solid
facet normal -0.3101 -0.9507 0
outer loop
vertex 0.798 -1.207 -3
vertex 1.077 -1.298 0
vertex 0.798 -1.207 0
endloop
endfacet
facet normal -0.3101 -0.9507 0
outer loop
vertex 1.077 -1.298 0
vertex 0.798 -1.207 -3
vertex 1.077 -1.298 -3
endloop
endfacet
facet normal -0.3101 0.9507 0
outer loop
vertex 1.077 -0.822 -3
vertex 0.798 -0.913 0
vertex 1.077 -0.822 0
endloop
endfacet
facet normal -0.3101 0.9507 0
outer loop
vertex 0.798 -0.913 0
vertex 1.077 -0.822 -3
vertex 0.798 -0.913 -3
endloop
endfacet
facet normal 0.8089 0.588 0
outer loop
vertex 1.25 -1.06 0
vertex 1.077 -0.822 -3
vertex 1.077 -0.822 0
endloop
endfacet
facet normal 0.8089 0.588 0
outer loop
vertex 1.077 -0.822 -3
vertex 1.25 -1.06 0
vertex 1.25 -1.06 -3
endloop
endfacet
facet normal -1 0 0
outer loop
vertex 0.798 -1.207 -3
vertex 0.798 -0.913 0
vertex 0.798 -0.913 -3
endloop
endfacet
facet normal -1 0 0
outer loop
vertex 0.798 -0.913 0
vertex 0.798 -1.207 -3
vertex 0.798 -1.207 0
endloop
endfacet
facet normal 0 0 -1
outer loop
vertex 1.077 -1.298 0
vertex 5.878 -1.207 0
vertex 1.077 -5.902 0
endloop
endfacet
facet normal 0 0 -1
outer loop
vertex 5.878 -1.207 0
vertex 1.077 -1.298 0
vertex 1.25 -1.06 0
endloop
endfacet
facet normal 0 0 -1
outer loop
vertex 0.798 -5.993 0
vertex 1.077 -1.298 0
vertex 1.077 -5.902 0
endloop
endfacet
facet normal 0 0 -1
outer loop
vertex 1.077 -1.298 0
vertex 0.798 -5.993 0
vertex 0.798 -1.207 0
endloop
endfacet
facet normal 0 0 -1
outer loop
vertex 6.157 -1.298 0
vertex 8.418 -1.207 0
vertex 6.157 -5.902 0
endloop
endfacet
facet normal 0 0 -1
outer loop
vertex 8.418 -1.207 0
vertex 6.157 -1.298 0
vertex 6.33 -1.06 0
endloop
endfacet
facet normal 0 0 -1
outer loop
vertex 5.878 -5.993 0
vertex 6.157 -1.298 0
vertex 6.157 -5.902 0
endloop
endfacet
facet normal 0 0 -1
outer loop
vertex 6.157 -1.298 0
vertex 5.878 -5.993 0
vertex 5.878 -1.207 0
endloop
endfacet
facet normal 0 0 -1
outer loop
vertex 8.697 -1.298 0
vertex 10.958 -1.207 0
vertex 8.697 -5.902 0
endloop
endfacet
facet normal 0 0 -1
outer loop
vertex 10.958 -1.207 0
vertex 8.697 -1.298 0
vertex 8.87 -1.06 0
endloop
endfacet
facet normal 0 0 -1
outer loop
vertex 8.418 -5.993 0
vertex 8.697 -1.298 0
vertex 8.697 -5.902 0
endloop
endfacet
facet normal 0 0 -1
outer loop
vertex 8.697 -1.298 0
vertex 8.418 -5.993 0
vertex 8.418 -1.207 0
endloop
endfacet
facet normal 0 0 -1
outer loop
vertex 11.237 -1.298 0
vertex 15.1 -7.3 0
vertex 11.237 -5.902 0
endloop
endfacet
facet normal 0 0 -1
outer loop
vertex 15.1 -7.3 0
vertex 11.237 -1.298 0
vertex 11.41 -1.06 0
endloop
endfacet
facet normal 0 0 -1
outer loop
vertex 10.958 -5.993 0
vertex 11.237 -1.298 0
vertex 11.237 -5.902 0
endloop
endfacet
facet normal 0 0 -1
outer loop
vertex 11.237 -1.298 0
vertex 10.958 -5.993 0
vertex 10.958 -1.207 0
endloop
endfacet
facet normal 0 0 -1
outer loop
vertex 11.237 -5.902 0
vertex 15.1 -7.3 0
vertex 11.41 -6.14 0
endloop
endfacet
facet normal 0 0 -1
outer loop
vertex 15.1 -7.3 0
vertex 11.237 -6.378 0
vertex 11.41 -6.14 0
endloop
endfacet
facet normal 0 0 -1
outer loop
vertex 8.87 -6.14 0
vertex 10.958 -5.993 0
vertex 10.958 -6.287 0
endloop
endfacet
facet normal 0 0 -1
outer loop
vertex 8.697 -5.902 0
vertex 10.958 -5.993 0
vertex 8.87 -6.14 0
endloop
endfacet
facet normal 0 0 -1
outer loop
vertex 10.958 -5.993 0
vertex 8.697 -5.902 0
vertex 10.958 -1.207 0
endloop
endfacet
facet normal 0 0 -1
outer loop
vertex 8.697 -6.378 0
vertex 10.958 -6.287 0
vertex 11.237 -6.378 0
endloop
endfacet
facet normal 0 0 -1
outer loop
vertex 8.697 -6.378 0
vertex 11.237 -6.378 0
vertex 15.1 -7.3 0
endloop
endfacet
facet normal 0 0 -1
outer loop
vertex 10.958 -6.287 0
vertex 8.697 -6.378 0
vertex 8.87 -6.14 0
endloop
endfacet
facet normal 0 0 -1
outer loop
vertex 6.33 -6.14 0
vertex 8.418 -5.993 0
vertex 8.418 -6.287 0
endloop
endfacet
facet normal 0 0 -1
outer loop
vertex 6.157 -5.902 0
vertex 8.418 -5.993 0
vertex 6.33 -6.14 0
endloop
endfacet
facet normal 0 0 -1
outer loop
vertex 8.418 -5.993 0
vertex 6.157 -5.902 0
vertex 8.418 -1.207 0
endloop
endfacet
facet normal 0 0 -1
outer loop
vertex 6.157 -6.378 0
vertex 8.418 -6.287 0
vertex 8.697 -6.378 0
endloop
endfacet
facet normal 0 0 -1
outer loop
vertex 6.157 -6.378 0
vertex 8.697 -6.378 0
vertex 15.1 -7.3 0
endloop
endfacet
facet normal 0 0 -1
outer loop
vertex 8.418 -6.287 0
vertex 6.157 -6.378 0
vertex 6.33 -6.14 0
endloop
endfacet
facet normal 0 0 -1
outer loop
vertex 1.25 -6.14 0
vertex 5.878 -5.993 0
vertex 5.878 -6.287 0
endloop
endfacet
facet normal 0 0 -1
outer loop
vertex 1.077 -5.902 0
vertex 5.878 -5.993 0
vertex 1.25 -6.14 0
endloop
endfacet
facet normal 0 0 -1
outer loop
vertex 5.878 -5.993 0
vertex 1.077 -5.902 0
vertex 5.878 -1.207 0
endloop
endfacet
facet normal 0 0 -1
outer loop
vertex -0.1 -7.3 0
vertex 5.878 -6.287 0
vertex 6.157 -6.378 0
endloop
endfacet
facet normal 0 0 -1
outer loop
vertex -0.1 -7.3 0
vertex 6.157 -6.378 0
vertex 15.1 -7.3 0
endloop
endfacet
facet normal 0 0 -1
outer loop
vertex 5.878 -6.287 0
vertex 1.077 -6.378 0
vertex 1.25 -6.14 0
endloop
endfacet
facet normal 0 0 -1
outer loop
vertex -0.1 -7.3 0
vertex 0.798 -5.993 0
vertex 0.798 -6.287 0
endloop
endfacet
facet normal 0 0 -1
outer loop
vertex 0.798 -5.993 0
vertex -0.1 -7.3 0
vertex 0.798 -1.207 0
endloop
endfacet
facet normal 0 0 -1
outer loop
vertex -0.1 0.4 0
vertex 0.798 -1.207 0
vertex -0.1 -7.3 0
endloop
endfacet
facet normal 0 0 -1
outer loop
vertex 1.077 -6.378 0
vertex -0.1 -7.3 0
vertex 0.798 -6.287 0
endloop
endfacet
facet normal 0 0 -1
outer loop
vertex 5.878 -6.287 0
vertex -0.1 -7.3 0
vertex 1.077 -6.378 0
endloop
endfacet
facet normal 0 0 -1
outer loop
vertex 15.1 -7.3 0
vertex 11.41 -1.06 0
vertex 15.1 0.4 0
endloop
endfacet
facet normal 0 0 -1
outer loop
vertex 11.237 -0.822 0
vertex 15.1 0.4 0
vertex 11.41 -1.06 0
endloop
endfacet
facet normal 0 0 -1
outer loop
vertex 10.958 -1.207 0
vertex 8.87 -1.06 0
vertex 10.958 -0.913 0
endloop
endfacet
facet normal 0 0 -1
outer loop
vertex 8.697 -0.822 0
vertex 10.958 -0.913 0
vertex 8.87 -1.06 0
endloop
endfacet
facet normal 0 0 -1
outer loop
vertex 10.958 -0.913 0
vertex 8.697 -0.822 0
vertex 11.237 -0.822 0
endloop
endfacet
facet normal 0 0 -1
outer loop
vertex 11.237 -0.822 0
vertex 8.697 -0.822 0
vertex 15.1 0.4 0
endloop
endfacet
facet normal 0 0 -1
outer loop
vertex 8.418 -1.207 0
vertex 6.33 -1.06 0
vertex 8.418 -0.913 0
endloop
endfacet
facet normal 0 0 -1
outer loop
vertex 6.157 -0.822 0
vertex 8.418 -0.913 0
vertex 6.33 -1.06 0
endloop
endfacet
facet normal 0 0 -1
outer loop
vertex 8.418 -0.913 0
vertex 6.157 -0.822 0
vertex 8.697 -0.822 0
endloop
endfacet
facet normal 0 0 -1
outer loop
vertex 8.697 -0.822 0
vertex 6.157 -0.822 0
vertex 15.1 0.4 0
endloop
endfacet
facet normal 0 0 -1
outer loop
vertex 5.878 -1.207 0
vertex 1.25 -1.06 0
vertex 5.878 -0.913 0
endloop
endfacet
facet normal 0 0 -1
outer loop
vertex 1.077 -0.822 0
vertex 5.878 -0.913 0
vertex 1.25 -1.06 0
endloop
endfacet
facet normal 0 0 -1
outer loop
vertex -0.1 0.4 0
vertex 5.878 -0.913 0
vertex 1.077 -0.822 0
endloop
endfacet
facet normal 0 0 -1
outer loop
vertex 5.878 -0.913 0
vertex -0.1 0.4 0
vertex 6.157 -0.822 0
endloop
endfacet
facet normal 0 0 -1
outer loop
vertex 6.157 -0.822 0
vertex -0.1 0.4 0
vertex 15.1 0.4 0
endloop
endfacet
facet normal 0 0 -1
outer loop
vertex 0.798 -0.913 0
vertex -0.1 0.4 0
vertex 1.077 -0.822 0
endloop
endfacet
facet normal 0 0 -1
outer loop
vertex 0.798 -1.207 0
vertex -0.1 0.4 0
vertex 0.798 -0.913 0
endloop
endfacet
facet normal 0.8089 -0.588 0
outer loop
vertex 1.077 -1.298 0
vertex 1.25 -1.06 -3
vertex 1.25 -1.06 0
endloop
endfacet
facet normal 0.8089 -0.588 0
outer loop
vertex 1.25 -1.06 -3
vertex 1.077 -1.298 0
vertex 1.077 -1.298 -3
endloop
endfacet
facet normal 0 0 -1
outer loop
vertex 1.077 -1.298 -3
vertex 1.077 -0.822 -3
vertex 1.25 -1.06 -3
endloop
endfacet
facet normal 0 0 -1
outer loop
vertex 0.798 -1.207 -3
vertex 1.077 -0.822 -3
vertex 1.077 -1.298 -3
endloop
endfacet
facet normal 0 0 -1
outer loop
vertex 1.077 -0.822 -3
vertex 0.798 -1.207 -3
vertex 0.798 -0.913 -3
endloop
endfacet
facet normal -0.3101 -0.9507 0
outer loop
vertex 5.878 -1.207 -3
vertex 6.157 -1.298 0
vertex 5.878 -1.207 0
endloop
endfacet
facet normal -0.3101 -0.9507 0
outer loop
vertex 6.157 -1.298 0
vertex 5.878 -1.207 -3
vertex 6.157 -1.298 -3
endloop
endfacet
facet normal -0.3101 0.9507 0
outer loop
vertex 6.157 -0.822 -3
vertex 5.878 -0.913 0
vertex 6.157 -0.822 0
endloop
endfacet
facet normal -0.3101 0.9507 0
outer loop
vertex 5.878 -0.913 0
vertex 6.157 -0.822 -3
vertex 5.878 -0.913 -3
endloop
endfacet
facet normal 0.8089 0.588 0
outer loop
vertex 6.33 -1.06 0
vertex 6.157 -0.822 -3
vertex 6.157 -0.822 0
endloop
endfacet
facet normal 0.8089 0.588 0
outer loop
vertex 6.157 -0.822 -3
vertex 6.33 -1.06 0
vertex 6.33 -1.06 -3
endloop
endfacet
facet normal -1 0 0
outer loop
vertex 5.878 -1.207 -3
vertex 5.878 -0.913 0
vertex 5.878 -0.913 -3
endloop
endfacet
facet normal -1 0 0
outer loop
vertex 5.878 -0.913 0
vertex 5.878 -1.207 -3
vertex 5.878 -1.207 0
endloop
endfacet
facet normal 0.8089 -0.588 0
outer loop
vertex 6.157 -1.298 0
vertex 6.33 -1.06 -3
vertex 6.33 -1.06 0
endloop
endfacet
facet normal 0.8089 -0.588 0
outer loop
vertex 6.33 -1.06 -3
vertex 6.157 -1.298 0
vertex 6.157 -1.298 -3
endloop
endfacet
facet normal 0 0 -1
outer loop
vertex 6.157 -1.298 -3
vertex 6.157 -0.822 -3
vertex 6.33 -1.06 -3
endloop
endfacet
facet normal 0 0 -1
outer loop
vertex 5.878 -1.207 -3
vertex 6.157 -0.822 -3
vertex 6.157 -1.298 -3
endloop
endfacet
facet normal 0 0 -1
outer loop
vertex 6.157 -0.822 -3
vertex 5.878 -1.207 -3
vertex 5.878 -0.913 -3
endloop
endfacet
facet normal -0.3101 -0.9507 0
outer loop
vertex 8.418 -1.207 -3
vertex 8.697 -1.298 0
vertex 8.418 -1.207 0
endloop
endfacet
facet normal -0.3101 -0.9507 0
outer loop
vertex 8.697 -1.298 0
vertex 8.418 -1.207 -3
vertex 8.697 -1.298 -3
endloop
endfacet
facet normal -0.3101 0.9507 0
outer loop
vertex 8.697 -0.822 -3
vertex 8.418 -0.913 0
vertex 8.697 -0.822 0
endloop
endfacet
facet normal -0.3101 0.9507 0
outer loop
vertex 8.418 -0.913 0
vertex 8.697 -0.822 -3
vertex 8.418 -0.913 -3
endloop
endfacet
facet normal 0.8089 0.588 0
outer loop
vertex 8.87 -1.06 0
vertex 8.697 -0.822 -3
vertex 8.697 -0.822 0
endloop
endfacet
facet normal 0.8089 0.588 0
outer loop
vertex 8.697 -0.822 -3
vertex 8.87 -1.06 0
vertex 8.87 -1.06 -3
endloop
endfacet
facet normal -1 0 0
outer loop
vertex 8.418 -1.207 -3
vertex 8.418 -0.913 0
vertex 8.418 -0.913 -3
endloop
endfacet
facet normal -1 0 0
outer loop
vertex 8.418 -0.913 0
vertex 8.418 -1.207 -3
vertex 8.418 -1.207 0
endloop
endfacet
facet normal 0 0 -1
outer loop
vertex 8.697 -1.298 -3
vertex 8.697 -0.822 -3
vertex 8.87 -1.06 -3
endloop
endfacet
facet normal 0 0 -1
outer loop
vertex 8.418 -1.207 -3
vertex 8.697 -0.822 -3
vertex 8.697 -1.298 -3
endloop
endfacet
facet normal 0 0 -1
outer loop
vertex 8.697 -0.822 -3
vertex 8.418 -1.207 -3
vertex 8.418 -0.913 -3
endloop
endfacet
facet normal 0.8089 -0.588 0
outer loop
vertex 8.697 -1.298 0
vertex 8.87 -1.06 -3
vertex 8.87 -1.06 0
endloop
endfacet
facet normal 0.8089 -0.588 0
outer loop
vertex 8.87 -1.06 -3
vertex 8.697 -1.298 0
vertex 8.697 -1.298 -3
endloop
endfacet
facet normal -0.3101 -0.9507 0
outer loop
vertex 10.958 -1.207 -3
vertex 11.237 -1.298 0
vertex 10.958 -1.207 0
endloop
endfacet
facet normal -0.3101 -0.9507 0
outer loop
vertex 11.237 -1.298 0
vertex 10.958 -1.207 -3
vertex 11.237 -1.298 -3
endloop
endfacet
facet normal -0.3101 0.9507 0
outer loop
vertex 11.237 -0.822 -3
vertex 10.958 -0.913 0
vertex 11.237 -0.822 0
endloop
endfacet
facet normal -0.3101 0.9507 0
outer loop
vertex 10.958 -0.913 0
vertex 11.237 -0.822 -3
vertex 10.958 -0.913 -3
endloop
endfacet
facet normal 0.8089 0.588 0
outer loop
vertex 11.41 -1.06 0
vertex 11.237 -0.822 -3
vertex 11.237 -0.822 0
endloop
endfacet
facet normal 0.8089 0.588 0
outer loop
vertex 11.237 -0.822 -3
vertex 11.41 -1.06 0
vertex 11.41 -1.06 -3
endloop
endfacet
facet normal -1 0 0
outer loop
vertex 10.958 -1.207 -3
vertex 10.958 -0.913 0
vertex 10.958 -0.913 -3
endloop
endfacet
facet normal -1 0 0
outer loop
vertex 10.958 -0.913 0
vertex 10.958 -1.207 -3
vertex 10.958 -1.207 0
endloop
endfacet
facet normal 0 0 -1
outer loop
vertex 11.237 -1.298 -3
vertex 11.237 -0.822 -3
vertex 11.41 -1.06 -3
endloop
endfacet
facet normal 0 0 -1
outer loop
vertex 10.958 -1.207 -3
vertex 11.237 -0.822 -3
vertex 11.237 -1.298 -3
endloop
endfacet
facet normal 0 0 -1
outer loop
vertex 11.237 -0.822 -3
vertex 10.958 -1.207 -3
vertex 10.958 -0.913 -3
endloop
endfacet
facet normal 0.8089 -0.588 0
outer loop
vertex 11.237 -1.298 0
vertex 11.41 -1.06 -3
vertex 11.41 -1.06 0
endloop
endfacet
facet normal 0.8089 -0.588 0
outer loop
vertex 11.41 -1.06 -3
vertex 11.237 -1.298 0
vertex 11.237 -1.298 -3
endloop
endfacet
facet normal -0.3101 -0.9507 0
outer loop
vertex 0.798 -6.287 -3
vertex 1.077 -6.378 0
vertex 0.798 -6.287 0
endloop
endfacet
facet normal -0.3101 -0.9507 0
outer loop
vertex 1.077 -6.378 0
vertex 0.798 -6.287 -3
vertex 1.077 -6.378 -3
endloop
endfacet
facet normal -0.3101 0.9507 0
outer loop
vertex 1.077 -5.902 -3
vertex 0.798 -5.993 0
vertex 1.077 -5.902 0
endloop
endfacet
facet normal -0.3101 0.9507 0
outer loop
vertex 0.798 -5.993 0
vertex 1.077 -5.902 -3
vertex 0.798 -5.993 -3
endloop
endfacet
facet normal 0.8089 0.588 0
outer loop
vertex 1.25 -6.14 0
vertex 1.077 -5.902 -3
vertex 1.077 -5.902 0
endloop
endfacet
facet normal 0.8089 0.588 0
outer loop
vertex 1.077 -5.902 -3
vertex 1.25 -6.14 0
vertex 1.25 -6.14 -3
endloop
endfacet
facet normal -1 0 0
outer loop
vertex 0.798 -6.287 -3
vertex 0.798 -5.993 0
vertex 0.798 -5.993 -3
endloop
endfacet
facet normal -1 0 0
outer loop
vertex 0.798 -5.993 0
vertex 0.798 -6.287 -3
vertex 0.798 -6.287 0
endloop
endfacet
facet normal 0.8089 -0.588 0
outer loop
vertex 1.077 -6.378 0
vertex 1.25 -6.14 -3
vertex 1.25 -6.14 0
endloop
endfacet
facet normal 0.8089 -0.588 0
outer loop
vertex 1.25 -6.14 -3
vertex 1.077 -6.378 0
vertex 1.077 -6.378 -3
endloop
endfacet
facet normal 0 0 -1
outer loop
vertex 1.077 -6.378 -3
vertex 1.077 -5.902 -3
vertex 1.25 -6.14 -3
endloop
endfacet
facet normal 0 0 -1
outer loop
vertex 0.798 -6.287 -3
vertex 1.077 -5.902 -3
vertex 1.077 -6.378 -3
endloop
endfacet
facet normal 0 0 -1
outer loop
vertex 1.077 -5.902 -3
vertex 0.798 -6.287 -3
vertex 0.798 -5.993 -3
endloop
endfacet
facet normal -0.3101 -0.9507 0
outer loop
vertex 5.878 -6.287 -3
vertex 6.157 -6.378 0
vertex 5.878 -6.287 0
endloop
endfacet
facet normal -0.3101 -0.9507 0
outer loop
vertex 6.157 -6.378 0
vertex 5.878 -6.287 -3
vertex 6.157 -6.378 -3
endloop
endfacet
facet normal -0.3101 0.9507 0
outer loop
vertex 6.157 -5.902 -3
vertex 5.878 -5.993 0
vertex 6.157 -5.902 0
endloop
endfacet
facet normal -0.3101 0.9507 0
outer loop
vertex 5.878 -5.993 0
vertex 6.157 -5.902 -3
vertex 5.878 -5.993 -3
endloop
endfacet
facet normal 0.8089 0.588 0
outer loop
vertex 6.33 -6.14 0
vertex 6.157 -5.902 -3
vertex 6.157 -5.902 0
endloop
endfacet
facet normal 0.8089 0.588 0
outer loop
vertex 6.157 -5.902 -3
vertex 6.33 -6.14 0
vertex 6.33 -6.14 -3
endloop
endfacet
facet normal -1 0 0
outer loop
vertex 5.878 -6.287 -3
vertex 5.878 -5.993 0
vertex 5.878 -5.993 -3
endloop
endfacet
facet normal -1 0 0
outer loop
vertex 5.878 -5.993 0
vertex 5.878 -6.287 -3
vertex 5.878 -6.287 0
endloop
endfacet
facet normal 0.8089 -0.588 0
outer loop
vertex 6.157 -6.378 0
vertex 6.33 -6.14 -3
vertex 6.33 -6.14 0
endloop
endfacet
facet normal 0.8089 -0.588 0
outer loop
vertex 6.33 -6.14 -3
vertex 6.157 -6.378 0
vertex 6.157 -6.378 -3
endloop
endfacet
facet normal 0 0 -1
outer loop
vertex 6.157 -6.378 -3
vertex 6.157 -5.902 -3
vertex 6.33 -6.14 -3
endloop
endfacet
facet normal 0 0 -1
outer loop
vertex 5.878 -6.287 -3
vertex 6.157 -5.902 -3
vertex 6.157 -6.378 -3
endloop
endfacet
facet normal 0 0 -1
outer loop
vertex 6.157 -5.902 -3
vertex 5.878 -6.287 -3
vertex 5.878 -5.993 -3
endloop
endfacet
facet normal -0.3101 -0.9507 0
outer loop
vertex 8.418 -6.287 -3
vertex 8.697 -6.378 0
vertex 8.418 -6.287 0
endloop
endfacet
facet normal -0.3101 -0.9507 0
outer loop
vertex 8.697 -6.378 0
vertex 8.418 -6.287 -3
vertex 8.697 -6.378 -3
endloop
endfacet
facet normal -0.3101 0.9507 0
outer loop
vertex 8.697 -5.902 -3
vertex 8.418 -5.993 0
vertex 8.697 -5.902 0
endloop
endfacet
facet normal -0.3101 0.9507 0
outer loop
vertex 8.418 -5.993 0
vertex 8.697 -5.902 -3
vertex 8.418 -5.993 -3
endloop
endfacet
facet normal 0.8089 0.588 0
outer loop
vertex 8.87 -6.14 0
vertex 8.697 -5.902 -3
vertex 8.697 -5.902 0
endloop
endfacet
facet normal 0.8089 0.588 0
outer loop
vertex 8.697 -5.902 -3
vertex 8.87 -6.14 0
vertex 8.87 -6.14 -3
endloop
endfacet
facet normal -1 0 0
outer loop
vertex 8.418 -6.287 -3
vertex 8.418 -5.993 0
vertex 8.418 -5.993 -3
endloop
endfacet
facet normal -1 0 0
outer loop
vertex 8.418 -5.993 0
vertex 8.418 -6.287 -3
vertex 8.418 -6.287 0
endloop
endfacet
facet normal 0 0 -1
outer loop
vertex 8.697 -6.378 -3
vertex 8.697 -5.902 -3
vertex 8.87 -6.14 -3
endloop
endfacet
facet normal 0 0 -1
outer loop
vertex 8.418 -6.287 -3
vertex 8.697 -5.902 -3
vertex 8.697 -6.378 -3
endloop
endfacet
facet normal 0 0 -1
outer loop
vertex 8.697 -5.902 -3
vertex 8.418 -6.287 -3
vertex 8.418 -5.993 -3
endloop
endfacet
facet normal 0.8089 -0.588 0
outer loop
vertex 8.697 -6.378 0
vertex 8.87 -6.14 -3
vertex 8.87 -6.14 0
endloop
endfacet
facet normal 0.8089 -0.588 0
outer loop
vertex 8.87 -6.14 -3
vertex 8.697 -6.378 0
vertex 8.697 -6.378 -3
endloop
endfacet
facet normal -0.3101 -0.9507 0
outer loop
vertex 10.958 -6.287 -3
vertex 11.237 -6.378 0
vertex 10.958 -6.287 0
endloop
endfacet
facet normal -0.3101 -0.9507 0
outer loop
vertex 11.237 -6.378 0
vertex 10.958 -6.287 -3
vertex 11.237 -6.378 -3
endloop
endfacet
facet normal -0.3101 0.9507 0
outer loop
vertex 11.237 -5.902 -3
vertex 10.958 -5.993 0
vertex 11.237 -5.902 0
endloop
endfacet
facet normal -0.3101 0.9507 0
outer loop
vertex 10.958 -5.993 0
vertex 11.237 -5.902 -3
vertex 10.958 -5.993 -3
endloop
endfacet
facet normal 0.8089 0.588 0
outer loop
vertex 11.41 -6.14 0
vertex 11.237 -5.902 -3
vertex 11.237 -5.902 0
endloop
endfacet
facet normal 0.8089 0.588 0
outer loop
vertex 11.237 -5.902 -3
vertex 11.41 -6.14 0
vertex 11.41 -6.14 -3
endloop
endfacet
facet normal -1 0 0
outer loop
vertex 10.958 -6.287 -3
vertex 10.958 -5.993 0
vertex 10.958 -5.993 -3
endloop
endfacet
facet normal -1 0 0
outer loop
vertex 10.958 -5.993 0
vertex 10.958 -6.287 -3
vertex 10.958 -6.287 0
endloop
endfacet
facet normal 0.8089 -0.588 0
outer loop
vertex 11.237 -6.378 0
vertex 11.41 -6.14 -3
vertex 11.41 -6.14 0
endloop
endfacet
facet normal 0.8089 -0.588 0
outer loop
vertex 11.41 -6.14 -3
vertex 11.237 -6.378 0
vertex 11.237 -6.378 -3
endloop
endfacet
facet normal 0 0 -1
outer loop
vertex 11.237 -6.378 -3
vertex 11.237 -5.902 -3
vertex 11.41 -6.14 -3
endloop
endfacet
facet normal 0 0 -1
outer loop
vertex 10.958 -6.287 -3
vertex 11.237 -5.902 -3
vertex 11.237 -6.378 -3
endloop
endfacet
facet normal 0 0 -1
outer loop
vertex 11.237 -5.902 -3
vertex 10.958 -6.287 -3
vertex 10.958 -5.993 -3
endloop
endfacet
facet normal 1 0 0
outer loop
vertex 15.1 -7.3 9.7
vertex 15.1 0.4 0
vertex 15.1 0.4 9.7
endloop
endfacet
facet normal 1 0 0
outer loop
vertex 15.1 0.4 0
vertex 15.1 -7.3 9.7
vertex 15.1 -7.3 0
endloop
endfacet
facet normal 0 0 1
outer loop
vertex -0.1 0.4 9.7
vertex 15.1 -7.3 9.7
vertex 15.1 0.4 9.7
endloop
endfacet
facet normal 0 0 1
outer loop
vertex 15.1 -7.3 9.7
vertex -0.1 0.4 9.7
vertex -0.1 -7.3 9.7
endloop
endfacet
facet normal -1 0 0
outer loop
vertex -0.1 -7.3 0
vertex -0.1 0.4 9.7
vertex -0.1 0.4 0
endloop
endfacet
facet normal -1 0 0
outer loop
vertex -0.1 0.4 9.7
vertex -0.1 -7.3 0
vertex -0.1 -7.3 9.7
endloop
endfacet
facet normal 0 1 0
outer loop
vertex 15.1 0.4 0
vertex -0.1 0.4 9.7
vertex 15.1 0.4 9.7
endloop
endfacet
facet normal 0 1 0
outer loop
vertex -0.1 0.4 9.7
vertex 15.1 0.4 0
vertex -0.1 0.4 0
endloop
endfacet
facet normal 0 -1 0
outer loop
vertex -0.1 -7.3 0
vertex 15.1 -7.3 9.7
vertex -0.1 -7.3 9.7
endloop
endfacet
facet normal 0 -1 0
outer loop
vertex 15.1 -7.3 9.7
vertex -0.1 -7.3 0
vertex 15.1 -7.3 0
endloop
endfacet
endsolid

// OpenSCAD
module case()
{
//translate([0,-7.7,0])
    cube([15.2,7.7,9.7]);
}

module pin(_x,_y,_z)
{
translate([_x,_y,_z]) cylinder(3,r=0.25, true);
}

union()
{
  translate([-0.1,-7.3,0]) 
    {
case();
 translate([1.1,1.16,-3])
 {
 pin(0,0,0);
 pin(5.08,0,0);
 pin(5.08+2.54,0,0);
 pin(5.08+2.54+2.54,0,0);
 translate([0,5.08,0])
 {
 pin(0,0,0);
 pin(5.08,0,0);
 pin(5.08+2.54,0,0);
 pin(5.08+2.54+2.54,0,0);
 }}
 }
}
